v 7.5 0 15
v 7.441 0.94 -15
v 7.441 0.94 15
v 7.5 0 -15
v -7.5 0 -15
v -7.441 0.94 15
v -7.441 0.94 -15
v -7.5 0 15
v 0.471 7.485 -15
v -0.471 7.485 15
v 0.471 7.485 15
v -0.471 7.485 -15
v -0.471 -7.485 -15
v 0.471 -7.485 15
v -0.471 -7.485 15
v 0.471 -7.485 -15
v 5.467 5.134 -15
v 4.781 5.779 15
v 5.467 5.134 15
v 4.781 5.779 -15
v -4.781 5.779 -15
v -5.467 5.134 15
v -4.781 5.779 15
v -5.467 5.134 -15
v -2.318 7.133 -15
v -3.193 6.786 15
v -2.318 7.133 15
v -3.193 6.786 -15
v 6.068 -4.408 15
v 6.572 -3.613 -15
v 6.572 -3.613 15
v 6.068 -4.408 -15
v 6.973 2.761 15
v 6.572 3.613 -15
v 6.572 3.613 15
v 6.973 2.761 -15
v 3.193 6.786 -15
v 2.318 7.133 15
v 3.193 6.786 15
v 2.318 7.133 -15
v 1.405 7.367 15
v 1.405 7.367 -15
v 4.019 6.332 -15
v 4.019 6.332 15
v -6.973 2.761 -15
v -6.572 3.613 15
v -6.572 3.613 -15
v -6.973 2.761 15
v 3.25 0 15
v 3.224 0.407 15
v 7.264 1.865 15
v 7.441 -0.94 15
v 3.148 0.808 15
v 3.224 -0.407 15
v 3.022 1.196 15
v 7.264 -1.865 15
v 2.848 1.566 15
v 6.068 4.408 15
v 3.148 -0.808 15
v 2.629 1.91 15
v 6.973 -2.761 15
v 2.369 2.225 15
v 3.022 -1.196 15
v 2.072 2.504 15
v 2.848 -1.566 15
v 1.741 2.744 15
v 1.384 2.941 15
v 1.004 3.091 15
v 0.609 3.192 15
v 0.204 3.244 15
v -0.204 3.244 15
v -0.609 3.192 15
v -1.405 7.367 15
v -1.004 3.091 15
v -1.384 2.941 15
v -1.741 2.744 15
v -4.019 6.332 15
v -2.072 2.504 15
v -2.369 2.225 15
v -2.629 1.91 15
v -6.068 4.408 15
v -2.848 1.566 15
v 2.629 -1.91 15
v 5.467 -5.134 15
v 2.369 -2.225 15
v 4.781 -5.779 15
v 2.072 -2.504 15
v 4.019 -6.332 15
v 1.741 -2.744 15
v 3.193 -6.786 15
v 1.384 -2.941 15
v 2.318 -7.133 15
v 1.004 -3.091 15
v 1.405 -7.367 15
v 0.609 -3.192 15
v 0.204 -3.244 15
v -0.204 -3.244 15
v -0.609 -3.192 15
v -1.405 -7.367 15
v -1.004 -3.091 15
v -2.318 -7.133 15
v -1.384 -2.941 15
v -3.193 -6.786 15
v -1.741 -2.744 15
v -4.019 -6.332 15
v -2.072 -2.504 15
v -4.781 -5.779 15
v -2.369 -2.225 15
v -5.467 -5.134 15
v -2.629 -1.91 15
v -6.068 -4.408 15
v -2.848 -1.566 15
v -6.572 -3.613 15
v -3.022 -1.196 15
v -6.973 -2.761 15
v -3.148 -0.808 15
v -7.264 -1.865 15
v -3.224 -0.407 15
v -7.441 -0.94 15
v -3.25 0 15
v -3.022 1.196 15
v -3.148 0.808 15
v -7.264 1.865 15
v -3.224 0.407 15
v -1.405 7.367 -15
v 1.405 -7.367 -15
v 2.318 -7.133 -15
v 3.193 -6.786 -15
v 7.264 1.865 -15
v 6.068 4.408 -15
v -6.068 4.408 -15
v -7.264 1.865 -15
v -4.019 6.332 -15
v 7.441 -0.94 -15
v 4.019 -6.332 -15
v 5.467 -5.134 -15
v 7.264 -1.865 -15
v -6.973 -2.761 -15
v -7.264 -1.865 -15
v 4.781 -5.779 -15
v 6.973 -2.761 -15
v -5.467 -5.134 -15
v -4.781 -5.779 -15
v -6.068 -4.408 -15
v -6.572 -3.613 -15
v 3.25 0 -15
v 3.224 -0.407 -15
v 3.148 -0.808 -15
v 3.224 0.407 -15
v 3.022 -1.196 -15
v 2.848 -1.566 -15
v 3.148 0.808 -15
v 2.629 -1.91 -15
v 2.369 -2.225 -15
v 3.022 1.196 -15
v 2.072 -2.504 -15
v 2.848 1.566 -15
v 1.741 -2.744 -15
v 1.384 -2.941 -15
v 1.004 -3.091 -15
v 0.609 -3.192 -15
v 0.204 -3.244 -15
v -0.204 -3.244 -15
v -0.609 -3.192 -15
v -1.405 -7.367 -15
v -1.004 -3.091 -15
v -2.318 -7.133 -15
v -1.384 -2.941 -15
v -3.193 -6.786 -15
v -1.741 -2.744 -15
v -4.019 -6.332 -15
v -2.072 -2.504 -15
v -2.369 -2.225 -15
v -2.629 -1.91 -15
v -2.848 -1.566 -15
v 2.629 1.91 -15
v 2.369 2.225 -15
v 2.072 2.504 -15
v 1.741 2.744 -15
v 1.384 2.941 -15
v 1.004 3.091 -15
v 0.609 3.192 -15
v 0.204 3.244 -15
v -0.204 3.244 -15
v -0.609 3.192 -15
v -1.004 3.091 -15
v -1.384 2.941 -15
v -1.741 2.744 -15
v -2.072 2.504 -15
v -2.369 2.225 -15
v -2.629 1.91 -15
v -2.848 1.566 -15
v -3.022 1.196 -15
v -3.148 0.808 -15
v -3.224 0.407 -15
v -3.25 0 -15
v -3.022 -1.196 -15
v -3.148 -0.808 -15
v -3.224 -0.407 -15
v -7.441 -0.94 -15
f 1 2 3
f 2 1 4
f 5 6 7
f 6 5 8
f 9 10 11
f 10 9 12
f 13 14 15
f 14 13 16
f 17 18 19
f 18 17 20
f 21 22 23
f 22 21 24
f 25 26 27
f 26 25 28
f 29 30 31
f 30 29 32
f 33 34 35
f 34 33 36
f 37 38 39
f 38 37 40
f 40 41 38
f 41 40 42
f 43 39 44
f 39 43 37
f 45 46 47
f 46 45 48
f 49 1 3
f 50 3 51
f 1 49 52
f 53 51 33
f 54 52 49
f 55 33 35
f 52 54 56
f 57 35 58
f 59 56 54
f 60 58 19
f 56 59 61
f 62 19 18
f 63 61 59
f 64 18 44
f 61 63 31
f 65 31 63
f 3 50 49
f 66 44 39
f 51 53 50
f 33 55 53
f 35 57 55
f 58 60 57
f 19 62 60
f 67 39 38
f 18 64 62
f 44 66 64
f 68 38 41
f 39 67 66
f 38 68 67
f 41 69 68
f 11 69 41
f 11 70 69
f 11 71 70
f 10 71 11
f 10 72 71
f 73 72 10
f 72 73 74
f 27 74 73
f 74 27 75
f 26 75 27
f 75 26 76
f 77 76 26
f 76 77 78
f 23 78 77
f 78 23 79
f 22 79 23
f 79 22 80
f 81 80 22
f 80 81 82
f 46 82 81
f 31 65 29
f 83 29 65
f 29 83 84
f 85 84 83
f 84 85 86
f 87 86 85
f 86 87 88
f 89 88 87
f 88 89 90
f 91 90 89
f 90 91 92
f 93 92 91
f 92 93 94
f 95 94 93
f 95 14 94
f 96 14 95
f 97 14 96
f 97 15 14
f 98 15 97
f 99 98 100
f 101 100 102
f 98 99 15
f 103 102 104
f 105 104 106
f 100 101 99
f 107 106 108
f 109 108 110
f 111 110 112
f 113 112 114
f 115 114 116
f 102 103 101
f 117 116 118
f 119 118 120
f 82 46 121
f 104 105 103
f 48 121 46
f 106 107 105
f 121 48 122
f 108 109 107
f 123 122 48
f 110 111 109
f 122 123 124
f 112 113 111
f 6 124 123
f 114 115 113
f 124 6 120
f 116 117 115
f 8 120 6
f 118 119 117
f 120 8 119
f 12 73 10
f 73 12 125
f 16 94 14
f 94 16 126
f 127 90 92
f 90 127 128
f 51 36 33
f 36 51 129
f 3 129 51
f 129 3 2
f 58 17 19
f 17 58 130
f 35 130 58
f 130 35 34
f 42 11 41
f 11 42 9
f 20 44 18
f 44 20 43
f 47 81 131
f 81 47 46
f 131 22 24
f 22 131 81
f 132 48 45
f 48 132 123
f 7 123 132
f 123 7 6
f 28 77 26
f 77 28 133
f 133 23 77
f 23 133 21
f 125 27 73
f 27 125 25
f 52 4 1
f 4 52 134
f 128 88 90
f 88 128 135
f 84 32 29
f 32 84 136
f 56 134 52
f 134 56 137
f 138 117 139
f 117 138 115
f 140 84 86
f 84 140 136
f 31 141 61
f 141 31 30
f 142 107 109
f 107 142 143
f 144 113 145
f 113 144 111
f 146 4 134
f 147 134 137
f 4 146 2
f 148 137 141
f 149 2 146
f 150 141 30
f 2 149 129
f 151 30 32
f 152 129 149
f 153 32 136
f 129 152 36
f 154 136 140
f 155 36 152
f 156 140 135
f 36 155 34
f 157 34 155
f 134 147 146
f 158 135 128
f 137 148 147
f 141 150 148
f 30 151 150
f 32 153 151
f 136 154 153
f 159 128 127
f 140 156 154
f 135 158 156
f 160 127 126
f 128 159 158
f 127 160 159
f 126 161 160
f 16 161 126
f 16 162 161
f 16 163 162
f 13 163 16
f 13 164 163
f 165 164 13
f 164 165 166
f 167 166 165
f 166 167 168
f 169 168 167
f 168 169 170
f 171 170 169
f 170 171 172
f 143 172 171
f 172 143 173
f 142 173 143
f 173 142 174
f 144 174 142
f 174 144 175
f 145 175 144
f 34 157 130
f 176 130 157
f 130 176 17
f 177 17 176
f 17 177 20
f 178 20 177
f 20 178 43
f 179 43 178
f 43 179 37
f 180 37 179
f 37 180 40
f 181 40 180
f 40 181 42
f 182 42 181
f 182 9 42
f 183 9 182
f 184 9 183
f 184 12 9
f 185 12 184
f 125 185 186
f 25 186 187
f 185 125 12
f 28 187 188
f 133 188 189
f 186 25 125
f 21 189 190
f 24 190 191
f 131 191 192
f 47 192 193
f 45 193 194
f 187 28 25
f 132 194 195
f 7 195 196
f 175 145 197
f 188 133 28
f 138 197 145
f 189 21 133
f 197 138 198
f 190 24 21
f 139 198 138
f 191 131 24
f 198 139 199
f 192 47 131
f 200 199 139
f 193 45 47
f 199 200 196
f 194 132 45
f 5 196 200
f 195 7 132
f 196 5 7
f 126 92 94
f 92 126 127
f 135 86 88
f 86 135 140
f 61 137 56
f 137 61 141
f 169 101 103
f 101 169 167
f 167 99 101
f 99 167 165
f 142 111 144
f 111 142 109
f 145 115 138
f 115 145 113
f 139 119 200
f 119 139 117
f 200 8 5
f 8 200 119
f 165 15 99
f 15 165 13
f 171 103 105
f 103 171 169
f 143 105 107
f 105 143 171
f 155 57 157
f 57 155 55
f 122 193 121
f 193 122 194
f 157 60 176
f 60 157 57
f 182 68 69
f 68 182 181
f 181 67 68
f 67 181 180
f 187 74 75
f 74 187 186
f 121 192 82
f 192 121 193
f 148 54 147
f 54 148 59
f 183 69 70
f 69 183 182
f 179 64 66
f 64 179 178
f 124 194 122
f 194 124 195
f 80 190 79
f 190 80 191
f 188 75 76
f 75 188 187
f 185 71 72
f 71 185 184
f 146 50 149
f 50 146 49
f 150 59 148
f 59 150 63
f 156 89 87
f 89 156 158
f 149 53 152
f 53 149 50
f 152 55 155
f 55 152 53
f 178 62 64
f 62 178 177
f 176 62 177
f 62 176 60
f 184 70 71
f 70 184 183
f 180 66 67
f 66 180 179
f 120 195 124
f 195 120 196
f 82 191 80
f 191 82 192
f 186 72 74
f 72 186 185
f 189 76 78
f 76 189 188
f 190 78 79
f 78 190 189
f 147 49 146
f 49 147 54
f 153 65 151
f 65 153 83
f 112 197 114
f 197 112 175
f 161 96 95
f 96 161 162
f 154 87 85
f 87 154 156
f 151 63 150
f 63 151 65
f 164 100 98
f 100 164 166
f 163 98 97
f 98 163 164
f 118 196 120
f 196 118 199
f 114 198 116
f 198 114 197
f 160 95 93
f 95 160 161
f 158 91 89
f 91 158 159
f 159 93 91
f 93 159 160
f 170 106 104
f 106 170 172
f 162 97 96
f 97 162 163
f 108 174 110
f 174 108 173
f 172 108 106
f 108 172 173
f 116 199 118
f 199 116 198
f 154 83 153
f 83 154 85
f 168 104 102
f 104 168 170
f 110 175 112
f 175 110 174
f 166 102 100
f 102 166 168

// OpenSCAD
$fn = 50;


difference() {
	union() {
		translate(v = [0, 0, -15.0000000000]) {
			cylinder(h = 30, r = 7.5000000000);
		}
	}
	union() {
		translate(v = [0, 0, -100.0000000000]) {
			cylinder(h = 200, r = 3.2500000000);
		}
	}
}
